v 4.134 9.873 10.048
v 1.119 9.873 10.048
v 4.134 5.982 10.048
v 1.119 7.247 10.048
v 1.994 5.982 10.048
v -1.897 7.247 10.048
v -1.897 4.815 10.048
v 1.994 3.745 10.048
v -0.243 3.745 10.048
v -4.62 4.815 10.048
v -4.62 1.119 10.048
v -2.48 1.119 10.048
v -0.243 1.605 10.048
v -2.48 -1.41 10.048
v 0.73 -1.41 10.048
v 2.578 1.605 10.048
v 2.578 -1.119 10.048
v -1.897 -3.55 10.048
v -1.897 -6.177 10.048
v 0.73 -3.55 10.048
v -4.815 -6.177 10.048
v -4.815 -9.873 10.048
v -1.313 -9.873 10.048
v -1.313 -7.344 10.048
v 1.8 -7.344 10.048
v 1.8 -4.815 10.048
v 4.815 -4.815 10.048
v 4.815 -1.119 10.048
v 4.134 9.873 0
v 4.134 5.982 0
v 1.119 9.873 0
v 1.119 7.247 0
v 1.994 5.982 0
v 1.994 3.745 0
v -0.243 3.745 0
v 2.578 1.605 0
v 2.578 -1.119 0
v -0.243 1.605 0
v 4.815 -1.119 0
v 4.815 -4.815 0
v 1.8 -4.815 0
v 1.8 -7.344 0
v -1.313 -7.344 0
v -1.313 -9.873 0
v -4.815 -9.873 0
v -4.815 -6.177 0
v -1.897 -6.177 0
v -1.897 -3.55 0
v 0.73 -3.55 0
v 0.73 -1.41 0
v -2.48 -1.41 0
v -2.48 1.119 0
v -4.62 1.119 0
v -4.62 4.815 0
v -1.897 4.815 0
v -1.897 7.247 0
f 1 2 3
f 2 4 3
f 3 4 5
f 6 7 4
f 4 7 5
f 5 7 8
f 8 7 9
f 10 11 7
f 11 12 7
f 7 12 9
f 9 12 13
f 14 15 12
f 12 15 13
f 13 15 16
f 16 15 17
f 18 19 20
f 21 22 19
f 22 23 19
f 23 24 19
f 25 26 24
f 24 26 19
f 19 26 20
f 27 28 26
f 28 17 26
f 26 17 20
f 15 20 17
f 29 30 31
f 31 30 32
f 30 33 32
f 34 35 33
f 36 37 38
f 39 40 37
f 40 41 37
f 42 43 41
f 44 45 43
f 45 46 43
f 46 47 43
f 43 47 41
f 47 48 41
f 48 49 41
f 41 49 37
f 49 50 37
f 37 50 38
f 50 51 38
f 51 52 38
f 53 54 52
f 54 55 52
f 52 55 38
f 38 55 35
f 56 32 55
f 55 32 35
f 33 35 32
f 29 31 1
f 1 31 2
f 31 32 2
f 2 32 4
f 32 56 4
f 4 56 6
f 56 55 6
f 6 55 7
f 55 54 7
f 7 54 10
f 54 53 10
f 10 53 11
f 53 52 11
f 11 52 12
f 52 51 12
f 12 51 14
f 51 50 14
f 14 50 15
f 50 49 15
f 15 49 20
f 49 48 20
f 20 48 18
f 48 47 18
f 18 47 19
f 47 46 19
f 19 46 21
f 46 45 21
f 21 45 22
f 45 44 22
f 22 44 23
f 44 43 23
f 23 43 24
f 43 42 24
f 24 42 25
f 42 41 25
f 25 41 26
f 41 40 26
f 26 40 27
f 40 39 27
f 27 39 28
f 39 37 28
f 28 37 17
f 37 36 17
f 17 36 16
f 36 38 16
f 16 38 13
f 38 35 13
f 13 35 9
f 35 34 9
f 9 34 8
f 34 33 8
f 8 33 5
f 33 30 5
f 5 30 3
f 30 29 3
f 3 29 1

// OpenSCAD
module invaders_v2_missle2() 
{
	polyhedron(
		points=[
			[4.134062, 9.873108, 10.04818],
			[1.118631, 9.873108, 10.04818],
			[4.134062, 5.982227, 10.04818],
			[1.118631, 9.873108, 10.04818],
			[1.118631, 7.246761, 10.04818],
			[4.134062, 5.982227, 10.04818],
			[4.134062, 5.982227, 10.04818],
			[1.118631, 7.246761, 10.04818],
			[1.994078, 5.982227, 10.04818],
			[-1.896803, 7.246761, 10.04818],
			[-1.896803, 4.814964, 10.04818],
			[1.118631, 7.246761, 10.04818],
			[1.118631, 7.246761, 10.04818],
			[-1.896803, 4.814964, 10.04818],
			[1.994078, 5.982227, 10.04818],
			[1.994078, 5.982227, 10.04818],
			[-1.896803, 4.814964, 10.04818],
			[1.994078, 3.744972, 10.04818],
			[1.994078, 3.744972, 10.04818],
			[-1.896803, 4.814964, 10.04818],
			[-0.2431774, 3.744972, 10.04818],
			[-4.620417, 4.814964, 10.04818],
			[-4.620417, 1.118629, 10.04818],
			[-1.896803, 4.814964, 10.04818],
			[-4.620417, 1.118629, 10.04818],
			[-2.480433, 1.118629, 10.04818],
			[-1.896803, 4.814964, 10.04818],
			[-1.896803, 4.814964, 10.04818],
			[-2.480433, 1.118629, 10.04818],
			[-0.2431774, 3.744972, 10.04818],
			[-0.2431774, 3.744972, 10.04818],
			[-2.480433, 1.118629, 10.04818],
			[-0.2431774, 1.604988, 10.04818],
			[-2.480433, -1.410446, 10.04818],
			[0.7295437, -1.410446, 10.04818],
			[-2.480433, 1.118629, 10.04818],
			[-2.480433, 1.118629, 10.04818],
			[0.7295437, -1.410446, 10.04818],
			[-0.2431774, 1.604988, 10.04818],
			[-0.2431774, 1.604988, 10.04818],
			[0.7295437, -1.410446, 10.04818],
			[2.577711, 1.604988, 10.04818],
			[2.577711, 1.604988, 10.04818],
			[0.7295437, -1.410446, 10.04818],
			[2.577711, -1.118626, 10.04818],
			[-1.896803, -3.550426, 10.04818],
			[-1.896803, -6.176769, 10.04818],
			[0.7295437, -3.550426, 10.04818],
			[-4.814962, -6.176769, 10.04818],
			[-4.814962, -9.873108, 10.04818],
			[-1.896803, -6.176769, 10.04818],
			[-4.814962, -9.873108, 10.04818],
			[-1.313169, -9.873108, 10.04818],
			[-1.896803, -6.176769, 10.04818],
			[-1.313169, -9.873108, 10.04818],
			[-1.313169, -7.344036, 10.04818],
			[-1.896803, -6.176769, 10.04818],
			[1.799536, -7.344036, 10.04818],
			[1.799536, -4.814964, 10.04818],
			[-1.313169, -7.344036, 10.04818],
			[-1.313169, -7.344036, 10.04818],
			[1.799536, -4.814964, 10.04818],
			[-1.896803, -6.176769, 10.04818],
			[-1.896803, -6.176769, 10.04818],
			[1.799536, -4.814964, 10.04818],
			[0.7295437, -3.550426, 10.04818],
			[4.814962, -4.814964, 10.04818],
			[4.814962, -1.118626, 10.04818],
			[1.799536, -4.814964, 10.04818],
			[4.814962, -1.118626, 10.04818],
			[2.577711, -1.118626, 10.04818],
			[1.799536, -4.814964, 10.04818],
			[1.799536, -4.814964, 10.04818],
			[2.577711, -1.118626, 10.04818],
			[0.7295437, -3.550426, 10.04818],
			[0.7295437, -1.410446, 10.04818],
			[0.7295437, -3.550426, 10.04818],
			[2.577711, -1.118626, 10.04818],
			[4.134062, 9.873108, 0.0],
			[4.134062, 5.982227, 2.220446e-16],
			[1.118631, 9.873108, 0.0],
			[1.118631, 9.873108, 0.0],
			[4.134062, 5.982227, 2.220446e-16],
			[1.118631, 7.246761, 0.0],
			[4.134062, 5.982227, 2.220446e-16],
			[1.994078, 5.982227, 2.220446e-16],
			[1.118631, 7.246761, 0.0],
			[1.994078, 3.744972, 2.220446e-16],
			[-0.2431774, 3.744972, 2.220446e-16],
			[1.994078, 5.982227, 2.220446e-16],
			[2.577711, 1.604988, 4.440892e-16],
			[2.577711, -1.118626, 6.661338e-16],
			[-0.2431774, 1.604988, 4.440892e-16],
			[4.814962, -1.118626, 6.661338e-16],
			[4.814962, -4.814964, 8.881784e-16],
			[2.577711, -1.118626, 6.661338e-16],
			[4.814962, -4.814964, 8.881784e-16],
			[1.799536, -4.814964, 8.881784e-16],
			[2.577711, -1.118626, 6.661338e-16],
			[1.799536, -7.344036, 8.881784e-16],
			[-1.313169, -7.344036, 8.881784e-16],
			[1.799536, -4.814964, 8.881784e-16],
			[-1.313169, -9.873108, 1.110223e-15],
			[-4.814962, -9.873108, 1.110223e-15],
			[-1.313169, -7.344036, 8.881784e-16],
			[-4.814962, -9.873108, 1.110223e-15],
			[-4.814962, -6.176769, 8.881784e-16],
			[-1.313169, -7.344036, 8.881784e-16],
			[-4.814962, -6.176769, 8.881784e-16],
			[-1.896803, -6.176769, 8.881784e-16],
			[-1.313169, -7.344036, 8.881784e-16],
			[-1.313169, -7.344036, 8.881784e-16],
			[-1.896803, -6.176769, 8.881784e-16],
			[1.799536, -4.814964, 8.881784e-16],
			[-1.896803, -6.176769, 8.881784e-16],
			[-1.896803, -3.550426, 6.661338e-16],
			[1.799536, -4.814964, 8.881784e-16],
			[-1.896803, -3.550426, 6.661338e-16],
			[0.7295437, -3.550426, 6.661338e-16],
			[1.799536, -4.814964, 8.881784e-16],
			[1.799536, -4.814964, 8.881784e-16],
			[0.7295437, -3.550426, 6.661338e-16],
			[2.577711, -1.118626, 6.661338e-16],
			[0.7295437, -3.550426, 6.661338e-16],
			[0.7295437, -1.410446, 6.661338e-16],
			[2.577711, -1.118626, 6.661338e-16],
			[2.577711, -1.118626, 6.661338e-16],
			[0.7295437, -1.410446, 6.661338e-16],
			[-0.2431774, 1.604988, 4.440892e-16],
			[0.7295437, -1.410446, 6.661338e-16],
			[-2.480433, -1.410446, 6.661338e-16],
			[-0.2431774, 1.604988, 4.440892e-16],
			[-2.480433, -1.410446, 6.661338e-16],
			[-2.480433, 1.118629, 4.440892e-16],
			[-0.2431774, 1.604988, 4.440892e-16],
			[-4.620417, 1.118629, 4.440892e-16],
			[-4.620417, 4.814964, 2.220446e-16],
			[-2.480433, 1.118629, 4.440892e-16],
			[-4.620417, 4.814964, 2.220446e-16],
			[-1.896803, 4.814964, 2.220446e-16],
			[-2.480433, 1.118629, 4.440892e-16],
			[-2.480433, 1.118629, 4.440892e-16],
			[-1.896803, 4.814964, 2.220446e-16],
			[-0.2431774, 1.604988, 4.440892e-16],
			[-0.2431774, 1.604988, 4.440892e-16],
			[-1.896803, 4.814964, 2.220446e-16],
			[-0.2431774, 3.744972, 2.220446e-16],
			[-1.896803, 7.246761, 0.0],
			[1.118631, 7.246761, 0.0],
			[-1.896803, 4.814964, 2.220446e-16],
			[-1.896803, 4.814964, 2.220446e-16],
			[1.118631, 7.246761, 0.0],
			[-0.2431774, 3.744972, 2.220446e-16],
			[1.994078, 5.982227, 2.220446e-16],
			[-0.2431774, 3.744972, 2.220446e-16],
			[1.118631, 7.246761, 0.0],
			[4.134062, 9.873108, 0.0],
			[1.118631, 9.873108, 0.0],
			[4.134062, 9.873108, 10.04818],
			[4.134062, 9.873108, 10.04818],
			[1.118631, 9.873108, 0.0],
			[1.118631, 9.873108, 10.04818],
			[1.118631, 9.873108, 0.0],
			[1.118631, 7.246761, 0.0],
			[1.118631, 9.873108, 10.04818],
			[1.118631, 9.873108, 10.04818],
			[1.118631, 7.246761, 0.0],
			[1.118631, 7.246761, 10.04818],
			[1.118631, 7.246761, 0.0],
			[-1.896803, 7.246761, 0.0],
			[1.118631, 7.246761, 10.04818],
			[1.118631, 7.246761, 10.04818],
			[-1.896803, 7.246761, 0.0],
			[-1.896803, 7.246761, 10.04818],
			[-1.896803, 7.246761, 0.0],
			[-1.896803, 4.814964, 2.220446e-16],
			[-1.896803, 7.246761, 10.04818],
			[-1.896803, 7.246761, 10.04818],
			[-1.896803, 4.814964, 2.220446e-16],
			[-1.896803, 4.814964, 10.04818],
			[-1.896803, 4.814964, 2.220446e-16],
			[-4.620417, 4.814964, 2.220446e-16],
			[-1.896803, 4.814964, 10.04818],
			[-1.896803, 4.814964, 10.04818],
			[-4.620417, 4.814964, 2.220446e-16],
			[-4.620417, 4.814964, 10.04818],
			[-4.620417, 4.814964, 2.220446e-16],
			[-4.620417, 1.118629, 4.440892e-16],
			[-4.620417, 4.814964, 10.04818],
			[-4.620417, 4.814964, 10.04818],
			[-4.620417, 1.118629, 4.440892e-16],
			[-4.620417, 1.118629, 10.04818],
			[-4.620417, 1.118629, 4.440892e-16],
			[-2.480433, 1.118629, 4.440892e-16],
			[-4.620417, 1.118629, 10.04818],
			[-4.620417, 1.118629, 10.04818],
			[-2.480433, 1.118629, 4.440892e-16],
			[-2.480433, 1.118629, 10.04818],
			[-2.480433, 1.118629, 4.440892e-16],
			[-2.480433, -1.410446, 6.661338e-16],
			[-2.480433, 1.118629, 10.04818],
			[-2.480433, 1.118629, 10.04818],
			[-2.480433, -1.410446, 6.661338e-16],
			[-2.480433, -1.410446, 10.04818],
			[-2.480433, -1.410446, 6.661338e-16],
			[0.7295437, -1.410446, 6.661338e-16],
			[-2.480433, -1.410446, 10.04818],
			[-2.480433, -1.410446, 10.04818],
			[0.7295437, -1.410446, 6.661338e-16],
			[0.7295437, -1.410446, 10.04818],
			[0.7295437, -1.410446, 6.661338e-16],
			[0.7295437, -3.550426, 6.661338e-16],
			[0.7295437, -1.410446, 10.04818],
			[0.7295437, -1.410446, 10.04818],
			[0.7295437, -3.550426, 6.661338e-16],
			[0.7295437, -3.550426, 10.04818],
			[0.7295437, -3.550426, 6.661338e-16],
			[-1.896803, -3.550426, 6.661338e-16],
			[0.7295437, -3.550426, 10.04818],
			[0.7295437, -3.550426, 10.04818],
			[-1.896803, -3.550426, 6.661338e-16],
			[-1.896803, -3.550426, 10.04818],
			[-1.896803, -3.550426, 6.661338e-16],
			[-1.896803, -6.176769, 8.881784e-16],
			[-1.896803, -3.550426, 10.04818],
			[-1.896803, -3.550426, 10.04818],
			[-1.896803, -6.176769, 8.881784e-16],
			[-1.896803, -6.176769, 10.04818],
			[-1.896803, -6.176769, 8.881784e-16],
			[-4.814962, -6.176769, 8.881784e-16],
			[-1.896803, -6.176769, 10.04818],
			[-1.896803, -6.176769, 10.04818],
			[-4.814962, -6.176769, 8.881784e-16],
			[-4.814962, -6.176769, 10.04818],
			[-4.814962, -6.176769, 8.881784e-16],
			[-4.814962, -9.873108, 1.110223e-15],
			[-4.814962, -6.176769, 10.04818],
			[-4.814962, -6.176769, 10.04818],
			[-4.814962, -9.873108, 1.110223e-15],
			[-4.814962, -9.873108, 10.04818],
			[-4.814962, -9.873108, 1.110223e-15],
			[-1.313169, -9.873108, 1.110223e-15],
			[-4.814962, -9.873108, 10.04818],
			[-4.814962, -9.873108, 10.04818],
			[-1.313169, -9.873108, 1.110223e-15],
			[-1.313169, -9.873108, 10.04818],
			[-1.313169, -9.873108, 1.110223e-15],
			[-1.313169, -7.344036, 8.881784e-16],
			[-1.313169, -9.873108, 10.04818],
			[-1.313169, -9.873108, 10.04818],
			[-1.313169, -7.344036, 8.881784e-16],
			[-1.313169, -7.344036, 10.04818],
			[-1.313169, -7.344036, 8.881784e-16],
			[1.799536, -7.344036, 8.881784e-16],
			[-1.313169, -7.344036, 10.04818],
			[-1.313169, -7.344036, 10.04818],
			[1.799536, -7.344036, 8.881784e-16],
			[1.799536, -7.344036, 10.04818],
			[1.799536, -7.344036, 8.881784e-16],
			[1.799536, -4.814964, 8.881784e-16],
			[1.799536, -7.344036, 10.04818],
			[1.799536, -7.344036, 10.04818],
			[1.799536, -4.814964, 8.881784e-16],
			[1.799536, -4.814964, 10.04818],
			[1.799536, -4.814964, 8.881784e-16],
			[4.814962, -4.814964, 8.881784e-16],
			[1.799536, -4.814964, 10.04818],
			[1.799536, -4.814964, 10.04818],
			[4.814962, -4.814964, 8.881784e-16],
			[4.814962, -4.814964, 10.04818],
			[4.814962, -4.814964, 8.881784e-16],
			[4.814962, -1.118626, 6.661338e-16],
			[4.814962, -4.814964, 10.04818],
			[4.814962, -4.814964, 10.04818],
			[4.814962, -1.118626, 6.661338e-16],
			[4.814962, -1.118626, 10.04818],
			[4.814962, -1.118626, 6.661338e-16],
			[2.577711, -1.118626, 6.661338e-16],
			[4.814962, -1.118626, 10.04818],
			[4.814962, -1.118626, 10.04818],
			[2.577711, -1.118626, 6.661338e-16],
			[2.577711, -1.118626, 10.04818],
			[2.577711, -1.118626, 6.661338e-16],
			[2.577711, 1.604988, 4.440892e-16],
			[2.577711, -1.118626, 10.04818],
			[2.577711, -1.118626, 10.04818],
			[2.577711, 1.604988, 4.440892e-16],
			[2.577711, 1.604988, 10.04818],
			[2.577711, 1.604988, 4.440892e-16],
			[-0.2431774, 1.604988, 4.440892e-16],
			[2.577711, 1.604988, 10.04818],
			[2.577711, 1.604988, 10.04818],
			[-0.2431774, 1.604988, 4.440892e-16],
			[-0.2431774, 1.604988, 10.04818],
			[-0.2431774, 1.604988, 4.440892e-16],
			[-0.2431774, 3.744972, 2.220446e-16],
			[-0.2431774, 1.604988, 10.04818],
			[-0.2431774, 1.604988, 10.04818],
			[-0.2431774, 3.744972, 2.220446e-16],
			[-0.2431774, 3.744972, 10.04818],
			[-0.2431774, 3.744972, 2.220446e-16],
			[1.994078, 3.744972, 2.220446e-16],
			[-0.2431774, 3.744972, 10.04818],
			[-0.2431774, 3.744972, 10.04818],
			[1.994078, 3.744972, 2.220446e-16],
			[1.994078, 3.744972, 10.04818],
			[1.994078, 3.744972, 2.220446e-16],
			[1.994078, 5.982227, 2.220446e-16],
			[1.994078, 3.744972, 10.04818],
			[1.994078, 3.744972, 10.04818],
			[1.994078, 5.982227, 2.220446e-16],
			[1.994078, 5.982227, 10.04818],
			[1.994078, 5.982227, 2.220446e-16],
			[4.134062, 5.982227, 2.220446e-16],
			[1.994078, 5.982227, 10.04818],
			[1.994078, 5.982227, 10.04818],
			[4.134062, 5.982227, 2.220446e-16],
			[4.134062, 5.982227, 10.04818],
			[4.134062, 5.982227, 2.220446e-16],
			[4.134062, 9.873108, 0.0],
			[4.134062, 5.982227, 10.04818],
			[4.134062, 5.982227, 10.04818],
			[4.134062, 9.873108, 0.0],
			[4.134062, 9.873108, 10.04818]
		],
		faces=[
			[0, 1, 2],
			[3, 4, 5],
			[6, 7, 8],
			[9, 10, 11],
			[12, 13, 14],
			[15, 16, 17],
			[18, 19, 20],
			[21, 22, 23],
			[24, 25, 26],
			[27, 28, 29],
			[30, 31, 32],
			[33, 34, 35],
			[36, 37, 38],
			[39, 40, 41],
			[42, 43, 44],
			[45, 46, 47],
			[48, 49, 50],
			[51, 52, 53],
			[54, 55, 56],
			[57, 58, 59],
			[60, 61, 62],
			[63, 64, 65],
			[66, 67, 68],
			[69, 70, 71],
			[72, 73, 74],
			[75, 76, 77],
			[78, 79, 80],
			[81, 82, 83],
			[84, 85, 86],
			[87, 88, 89],
			[90, 91, 92],
			[93, 94, 95],
			[96, 97, 98],
			[99, 100, 101],
			[102, 103, 104],
			[105, 106, 107],
			[108, 109, 110],
			[111, 112, 113],
			[114, 115, 116],
			[117, 118, 119],
			[120, 121, 122],
			[123, 124, 125],
			[126, 127, 128],
			[129, 130, 131],
			[132, 133, 134],
			[135, 136, 137],
			[138, 139, 140],
			[141, 142, 143],
			[144, 145, 146],
			[147, 148, 149],
			[150, 151, 152],
			[153, 154, 155],
			[156, 157, 158],
			[159, 160, 161],
			[162, 163, 164],
			[165, 166, 167],
			[168, 169, 170],
			[171, 172, 173],
			[174, 175, 176],
			[177, 178, 179],
			[180, 181, 182],
			[183, 184, 185],
			[186, 187, 188],
			[189, 190, 191],
			[192, 193, 194],
			[195, 196, 197],
			[198, 199, 200],
			[201, 202, 203],
			[204, 205, 206],
			[207, 208, 209],
			[210, 211, 212],
			[213, 214, 215],
			[216, 217, 218],
			[219, 220, 221],
			[222, 223, 224],
			[225, 226, 227],
			[228, 229, 230],
			[231, 232, 233],
			[234, 235, 236],
			[237, 238, 239],
			[240, 241, 242],
			[243, 244, 245],
			[246, 247, 248],
			[249, 250, 251],
			[252, 253, 254],
			[255, 256, 257],
			[258, 259, 260],
			[261, 262, 263],
			[264, 265, 266],
			[267, 268, 269],
			[270, 271, 272],
			[273, 274, 275],
			[276, 277, 278],
			[279, 280, 281],
			[282, 283, 284],
			[285, 286, 287],
			[288, 289, 290],
			[291, 292, 293],
			[294, 295, 296],
			[297, 298, 299],
			[300, 301, 302],
			[303, 304, 305],
			[306, 307, 308],
			[309, 310, 311],
			[312, 313, 314],
			[315, 316, 317],
			[318, 319, 320],
			[321, 322, 323]
		]
	);
}

invaders_v2_missle2();
